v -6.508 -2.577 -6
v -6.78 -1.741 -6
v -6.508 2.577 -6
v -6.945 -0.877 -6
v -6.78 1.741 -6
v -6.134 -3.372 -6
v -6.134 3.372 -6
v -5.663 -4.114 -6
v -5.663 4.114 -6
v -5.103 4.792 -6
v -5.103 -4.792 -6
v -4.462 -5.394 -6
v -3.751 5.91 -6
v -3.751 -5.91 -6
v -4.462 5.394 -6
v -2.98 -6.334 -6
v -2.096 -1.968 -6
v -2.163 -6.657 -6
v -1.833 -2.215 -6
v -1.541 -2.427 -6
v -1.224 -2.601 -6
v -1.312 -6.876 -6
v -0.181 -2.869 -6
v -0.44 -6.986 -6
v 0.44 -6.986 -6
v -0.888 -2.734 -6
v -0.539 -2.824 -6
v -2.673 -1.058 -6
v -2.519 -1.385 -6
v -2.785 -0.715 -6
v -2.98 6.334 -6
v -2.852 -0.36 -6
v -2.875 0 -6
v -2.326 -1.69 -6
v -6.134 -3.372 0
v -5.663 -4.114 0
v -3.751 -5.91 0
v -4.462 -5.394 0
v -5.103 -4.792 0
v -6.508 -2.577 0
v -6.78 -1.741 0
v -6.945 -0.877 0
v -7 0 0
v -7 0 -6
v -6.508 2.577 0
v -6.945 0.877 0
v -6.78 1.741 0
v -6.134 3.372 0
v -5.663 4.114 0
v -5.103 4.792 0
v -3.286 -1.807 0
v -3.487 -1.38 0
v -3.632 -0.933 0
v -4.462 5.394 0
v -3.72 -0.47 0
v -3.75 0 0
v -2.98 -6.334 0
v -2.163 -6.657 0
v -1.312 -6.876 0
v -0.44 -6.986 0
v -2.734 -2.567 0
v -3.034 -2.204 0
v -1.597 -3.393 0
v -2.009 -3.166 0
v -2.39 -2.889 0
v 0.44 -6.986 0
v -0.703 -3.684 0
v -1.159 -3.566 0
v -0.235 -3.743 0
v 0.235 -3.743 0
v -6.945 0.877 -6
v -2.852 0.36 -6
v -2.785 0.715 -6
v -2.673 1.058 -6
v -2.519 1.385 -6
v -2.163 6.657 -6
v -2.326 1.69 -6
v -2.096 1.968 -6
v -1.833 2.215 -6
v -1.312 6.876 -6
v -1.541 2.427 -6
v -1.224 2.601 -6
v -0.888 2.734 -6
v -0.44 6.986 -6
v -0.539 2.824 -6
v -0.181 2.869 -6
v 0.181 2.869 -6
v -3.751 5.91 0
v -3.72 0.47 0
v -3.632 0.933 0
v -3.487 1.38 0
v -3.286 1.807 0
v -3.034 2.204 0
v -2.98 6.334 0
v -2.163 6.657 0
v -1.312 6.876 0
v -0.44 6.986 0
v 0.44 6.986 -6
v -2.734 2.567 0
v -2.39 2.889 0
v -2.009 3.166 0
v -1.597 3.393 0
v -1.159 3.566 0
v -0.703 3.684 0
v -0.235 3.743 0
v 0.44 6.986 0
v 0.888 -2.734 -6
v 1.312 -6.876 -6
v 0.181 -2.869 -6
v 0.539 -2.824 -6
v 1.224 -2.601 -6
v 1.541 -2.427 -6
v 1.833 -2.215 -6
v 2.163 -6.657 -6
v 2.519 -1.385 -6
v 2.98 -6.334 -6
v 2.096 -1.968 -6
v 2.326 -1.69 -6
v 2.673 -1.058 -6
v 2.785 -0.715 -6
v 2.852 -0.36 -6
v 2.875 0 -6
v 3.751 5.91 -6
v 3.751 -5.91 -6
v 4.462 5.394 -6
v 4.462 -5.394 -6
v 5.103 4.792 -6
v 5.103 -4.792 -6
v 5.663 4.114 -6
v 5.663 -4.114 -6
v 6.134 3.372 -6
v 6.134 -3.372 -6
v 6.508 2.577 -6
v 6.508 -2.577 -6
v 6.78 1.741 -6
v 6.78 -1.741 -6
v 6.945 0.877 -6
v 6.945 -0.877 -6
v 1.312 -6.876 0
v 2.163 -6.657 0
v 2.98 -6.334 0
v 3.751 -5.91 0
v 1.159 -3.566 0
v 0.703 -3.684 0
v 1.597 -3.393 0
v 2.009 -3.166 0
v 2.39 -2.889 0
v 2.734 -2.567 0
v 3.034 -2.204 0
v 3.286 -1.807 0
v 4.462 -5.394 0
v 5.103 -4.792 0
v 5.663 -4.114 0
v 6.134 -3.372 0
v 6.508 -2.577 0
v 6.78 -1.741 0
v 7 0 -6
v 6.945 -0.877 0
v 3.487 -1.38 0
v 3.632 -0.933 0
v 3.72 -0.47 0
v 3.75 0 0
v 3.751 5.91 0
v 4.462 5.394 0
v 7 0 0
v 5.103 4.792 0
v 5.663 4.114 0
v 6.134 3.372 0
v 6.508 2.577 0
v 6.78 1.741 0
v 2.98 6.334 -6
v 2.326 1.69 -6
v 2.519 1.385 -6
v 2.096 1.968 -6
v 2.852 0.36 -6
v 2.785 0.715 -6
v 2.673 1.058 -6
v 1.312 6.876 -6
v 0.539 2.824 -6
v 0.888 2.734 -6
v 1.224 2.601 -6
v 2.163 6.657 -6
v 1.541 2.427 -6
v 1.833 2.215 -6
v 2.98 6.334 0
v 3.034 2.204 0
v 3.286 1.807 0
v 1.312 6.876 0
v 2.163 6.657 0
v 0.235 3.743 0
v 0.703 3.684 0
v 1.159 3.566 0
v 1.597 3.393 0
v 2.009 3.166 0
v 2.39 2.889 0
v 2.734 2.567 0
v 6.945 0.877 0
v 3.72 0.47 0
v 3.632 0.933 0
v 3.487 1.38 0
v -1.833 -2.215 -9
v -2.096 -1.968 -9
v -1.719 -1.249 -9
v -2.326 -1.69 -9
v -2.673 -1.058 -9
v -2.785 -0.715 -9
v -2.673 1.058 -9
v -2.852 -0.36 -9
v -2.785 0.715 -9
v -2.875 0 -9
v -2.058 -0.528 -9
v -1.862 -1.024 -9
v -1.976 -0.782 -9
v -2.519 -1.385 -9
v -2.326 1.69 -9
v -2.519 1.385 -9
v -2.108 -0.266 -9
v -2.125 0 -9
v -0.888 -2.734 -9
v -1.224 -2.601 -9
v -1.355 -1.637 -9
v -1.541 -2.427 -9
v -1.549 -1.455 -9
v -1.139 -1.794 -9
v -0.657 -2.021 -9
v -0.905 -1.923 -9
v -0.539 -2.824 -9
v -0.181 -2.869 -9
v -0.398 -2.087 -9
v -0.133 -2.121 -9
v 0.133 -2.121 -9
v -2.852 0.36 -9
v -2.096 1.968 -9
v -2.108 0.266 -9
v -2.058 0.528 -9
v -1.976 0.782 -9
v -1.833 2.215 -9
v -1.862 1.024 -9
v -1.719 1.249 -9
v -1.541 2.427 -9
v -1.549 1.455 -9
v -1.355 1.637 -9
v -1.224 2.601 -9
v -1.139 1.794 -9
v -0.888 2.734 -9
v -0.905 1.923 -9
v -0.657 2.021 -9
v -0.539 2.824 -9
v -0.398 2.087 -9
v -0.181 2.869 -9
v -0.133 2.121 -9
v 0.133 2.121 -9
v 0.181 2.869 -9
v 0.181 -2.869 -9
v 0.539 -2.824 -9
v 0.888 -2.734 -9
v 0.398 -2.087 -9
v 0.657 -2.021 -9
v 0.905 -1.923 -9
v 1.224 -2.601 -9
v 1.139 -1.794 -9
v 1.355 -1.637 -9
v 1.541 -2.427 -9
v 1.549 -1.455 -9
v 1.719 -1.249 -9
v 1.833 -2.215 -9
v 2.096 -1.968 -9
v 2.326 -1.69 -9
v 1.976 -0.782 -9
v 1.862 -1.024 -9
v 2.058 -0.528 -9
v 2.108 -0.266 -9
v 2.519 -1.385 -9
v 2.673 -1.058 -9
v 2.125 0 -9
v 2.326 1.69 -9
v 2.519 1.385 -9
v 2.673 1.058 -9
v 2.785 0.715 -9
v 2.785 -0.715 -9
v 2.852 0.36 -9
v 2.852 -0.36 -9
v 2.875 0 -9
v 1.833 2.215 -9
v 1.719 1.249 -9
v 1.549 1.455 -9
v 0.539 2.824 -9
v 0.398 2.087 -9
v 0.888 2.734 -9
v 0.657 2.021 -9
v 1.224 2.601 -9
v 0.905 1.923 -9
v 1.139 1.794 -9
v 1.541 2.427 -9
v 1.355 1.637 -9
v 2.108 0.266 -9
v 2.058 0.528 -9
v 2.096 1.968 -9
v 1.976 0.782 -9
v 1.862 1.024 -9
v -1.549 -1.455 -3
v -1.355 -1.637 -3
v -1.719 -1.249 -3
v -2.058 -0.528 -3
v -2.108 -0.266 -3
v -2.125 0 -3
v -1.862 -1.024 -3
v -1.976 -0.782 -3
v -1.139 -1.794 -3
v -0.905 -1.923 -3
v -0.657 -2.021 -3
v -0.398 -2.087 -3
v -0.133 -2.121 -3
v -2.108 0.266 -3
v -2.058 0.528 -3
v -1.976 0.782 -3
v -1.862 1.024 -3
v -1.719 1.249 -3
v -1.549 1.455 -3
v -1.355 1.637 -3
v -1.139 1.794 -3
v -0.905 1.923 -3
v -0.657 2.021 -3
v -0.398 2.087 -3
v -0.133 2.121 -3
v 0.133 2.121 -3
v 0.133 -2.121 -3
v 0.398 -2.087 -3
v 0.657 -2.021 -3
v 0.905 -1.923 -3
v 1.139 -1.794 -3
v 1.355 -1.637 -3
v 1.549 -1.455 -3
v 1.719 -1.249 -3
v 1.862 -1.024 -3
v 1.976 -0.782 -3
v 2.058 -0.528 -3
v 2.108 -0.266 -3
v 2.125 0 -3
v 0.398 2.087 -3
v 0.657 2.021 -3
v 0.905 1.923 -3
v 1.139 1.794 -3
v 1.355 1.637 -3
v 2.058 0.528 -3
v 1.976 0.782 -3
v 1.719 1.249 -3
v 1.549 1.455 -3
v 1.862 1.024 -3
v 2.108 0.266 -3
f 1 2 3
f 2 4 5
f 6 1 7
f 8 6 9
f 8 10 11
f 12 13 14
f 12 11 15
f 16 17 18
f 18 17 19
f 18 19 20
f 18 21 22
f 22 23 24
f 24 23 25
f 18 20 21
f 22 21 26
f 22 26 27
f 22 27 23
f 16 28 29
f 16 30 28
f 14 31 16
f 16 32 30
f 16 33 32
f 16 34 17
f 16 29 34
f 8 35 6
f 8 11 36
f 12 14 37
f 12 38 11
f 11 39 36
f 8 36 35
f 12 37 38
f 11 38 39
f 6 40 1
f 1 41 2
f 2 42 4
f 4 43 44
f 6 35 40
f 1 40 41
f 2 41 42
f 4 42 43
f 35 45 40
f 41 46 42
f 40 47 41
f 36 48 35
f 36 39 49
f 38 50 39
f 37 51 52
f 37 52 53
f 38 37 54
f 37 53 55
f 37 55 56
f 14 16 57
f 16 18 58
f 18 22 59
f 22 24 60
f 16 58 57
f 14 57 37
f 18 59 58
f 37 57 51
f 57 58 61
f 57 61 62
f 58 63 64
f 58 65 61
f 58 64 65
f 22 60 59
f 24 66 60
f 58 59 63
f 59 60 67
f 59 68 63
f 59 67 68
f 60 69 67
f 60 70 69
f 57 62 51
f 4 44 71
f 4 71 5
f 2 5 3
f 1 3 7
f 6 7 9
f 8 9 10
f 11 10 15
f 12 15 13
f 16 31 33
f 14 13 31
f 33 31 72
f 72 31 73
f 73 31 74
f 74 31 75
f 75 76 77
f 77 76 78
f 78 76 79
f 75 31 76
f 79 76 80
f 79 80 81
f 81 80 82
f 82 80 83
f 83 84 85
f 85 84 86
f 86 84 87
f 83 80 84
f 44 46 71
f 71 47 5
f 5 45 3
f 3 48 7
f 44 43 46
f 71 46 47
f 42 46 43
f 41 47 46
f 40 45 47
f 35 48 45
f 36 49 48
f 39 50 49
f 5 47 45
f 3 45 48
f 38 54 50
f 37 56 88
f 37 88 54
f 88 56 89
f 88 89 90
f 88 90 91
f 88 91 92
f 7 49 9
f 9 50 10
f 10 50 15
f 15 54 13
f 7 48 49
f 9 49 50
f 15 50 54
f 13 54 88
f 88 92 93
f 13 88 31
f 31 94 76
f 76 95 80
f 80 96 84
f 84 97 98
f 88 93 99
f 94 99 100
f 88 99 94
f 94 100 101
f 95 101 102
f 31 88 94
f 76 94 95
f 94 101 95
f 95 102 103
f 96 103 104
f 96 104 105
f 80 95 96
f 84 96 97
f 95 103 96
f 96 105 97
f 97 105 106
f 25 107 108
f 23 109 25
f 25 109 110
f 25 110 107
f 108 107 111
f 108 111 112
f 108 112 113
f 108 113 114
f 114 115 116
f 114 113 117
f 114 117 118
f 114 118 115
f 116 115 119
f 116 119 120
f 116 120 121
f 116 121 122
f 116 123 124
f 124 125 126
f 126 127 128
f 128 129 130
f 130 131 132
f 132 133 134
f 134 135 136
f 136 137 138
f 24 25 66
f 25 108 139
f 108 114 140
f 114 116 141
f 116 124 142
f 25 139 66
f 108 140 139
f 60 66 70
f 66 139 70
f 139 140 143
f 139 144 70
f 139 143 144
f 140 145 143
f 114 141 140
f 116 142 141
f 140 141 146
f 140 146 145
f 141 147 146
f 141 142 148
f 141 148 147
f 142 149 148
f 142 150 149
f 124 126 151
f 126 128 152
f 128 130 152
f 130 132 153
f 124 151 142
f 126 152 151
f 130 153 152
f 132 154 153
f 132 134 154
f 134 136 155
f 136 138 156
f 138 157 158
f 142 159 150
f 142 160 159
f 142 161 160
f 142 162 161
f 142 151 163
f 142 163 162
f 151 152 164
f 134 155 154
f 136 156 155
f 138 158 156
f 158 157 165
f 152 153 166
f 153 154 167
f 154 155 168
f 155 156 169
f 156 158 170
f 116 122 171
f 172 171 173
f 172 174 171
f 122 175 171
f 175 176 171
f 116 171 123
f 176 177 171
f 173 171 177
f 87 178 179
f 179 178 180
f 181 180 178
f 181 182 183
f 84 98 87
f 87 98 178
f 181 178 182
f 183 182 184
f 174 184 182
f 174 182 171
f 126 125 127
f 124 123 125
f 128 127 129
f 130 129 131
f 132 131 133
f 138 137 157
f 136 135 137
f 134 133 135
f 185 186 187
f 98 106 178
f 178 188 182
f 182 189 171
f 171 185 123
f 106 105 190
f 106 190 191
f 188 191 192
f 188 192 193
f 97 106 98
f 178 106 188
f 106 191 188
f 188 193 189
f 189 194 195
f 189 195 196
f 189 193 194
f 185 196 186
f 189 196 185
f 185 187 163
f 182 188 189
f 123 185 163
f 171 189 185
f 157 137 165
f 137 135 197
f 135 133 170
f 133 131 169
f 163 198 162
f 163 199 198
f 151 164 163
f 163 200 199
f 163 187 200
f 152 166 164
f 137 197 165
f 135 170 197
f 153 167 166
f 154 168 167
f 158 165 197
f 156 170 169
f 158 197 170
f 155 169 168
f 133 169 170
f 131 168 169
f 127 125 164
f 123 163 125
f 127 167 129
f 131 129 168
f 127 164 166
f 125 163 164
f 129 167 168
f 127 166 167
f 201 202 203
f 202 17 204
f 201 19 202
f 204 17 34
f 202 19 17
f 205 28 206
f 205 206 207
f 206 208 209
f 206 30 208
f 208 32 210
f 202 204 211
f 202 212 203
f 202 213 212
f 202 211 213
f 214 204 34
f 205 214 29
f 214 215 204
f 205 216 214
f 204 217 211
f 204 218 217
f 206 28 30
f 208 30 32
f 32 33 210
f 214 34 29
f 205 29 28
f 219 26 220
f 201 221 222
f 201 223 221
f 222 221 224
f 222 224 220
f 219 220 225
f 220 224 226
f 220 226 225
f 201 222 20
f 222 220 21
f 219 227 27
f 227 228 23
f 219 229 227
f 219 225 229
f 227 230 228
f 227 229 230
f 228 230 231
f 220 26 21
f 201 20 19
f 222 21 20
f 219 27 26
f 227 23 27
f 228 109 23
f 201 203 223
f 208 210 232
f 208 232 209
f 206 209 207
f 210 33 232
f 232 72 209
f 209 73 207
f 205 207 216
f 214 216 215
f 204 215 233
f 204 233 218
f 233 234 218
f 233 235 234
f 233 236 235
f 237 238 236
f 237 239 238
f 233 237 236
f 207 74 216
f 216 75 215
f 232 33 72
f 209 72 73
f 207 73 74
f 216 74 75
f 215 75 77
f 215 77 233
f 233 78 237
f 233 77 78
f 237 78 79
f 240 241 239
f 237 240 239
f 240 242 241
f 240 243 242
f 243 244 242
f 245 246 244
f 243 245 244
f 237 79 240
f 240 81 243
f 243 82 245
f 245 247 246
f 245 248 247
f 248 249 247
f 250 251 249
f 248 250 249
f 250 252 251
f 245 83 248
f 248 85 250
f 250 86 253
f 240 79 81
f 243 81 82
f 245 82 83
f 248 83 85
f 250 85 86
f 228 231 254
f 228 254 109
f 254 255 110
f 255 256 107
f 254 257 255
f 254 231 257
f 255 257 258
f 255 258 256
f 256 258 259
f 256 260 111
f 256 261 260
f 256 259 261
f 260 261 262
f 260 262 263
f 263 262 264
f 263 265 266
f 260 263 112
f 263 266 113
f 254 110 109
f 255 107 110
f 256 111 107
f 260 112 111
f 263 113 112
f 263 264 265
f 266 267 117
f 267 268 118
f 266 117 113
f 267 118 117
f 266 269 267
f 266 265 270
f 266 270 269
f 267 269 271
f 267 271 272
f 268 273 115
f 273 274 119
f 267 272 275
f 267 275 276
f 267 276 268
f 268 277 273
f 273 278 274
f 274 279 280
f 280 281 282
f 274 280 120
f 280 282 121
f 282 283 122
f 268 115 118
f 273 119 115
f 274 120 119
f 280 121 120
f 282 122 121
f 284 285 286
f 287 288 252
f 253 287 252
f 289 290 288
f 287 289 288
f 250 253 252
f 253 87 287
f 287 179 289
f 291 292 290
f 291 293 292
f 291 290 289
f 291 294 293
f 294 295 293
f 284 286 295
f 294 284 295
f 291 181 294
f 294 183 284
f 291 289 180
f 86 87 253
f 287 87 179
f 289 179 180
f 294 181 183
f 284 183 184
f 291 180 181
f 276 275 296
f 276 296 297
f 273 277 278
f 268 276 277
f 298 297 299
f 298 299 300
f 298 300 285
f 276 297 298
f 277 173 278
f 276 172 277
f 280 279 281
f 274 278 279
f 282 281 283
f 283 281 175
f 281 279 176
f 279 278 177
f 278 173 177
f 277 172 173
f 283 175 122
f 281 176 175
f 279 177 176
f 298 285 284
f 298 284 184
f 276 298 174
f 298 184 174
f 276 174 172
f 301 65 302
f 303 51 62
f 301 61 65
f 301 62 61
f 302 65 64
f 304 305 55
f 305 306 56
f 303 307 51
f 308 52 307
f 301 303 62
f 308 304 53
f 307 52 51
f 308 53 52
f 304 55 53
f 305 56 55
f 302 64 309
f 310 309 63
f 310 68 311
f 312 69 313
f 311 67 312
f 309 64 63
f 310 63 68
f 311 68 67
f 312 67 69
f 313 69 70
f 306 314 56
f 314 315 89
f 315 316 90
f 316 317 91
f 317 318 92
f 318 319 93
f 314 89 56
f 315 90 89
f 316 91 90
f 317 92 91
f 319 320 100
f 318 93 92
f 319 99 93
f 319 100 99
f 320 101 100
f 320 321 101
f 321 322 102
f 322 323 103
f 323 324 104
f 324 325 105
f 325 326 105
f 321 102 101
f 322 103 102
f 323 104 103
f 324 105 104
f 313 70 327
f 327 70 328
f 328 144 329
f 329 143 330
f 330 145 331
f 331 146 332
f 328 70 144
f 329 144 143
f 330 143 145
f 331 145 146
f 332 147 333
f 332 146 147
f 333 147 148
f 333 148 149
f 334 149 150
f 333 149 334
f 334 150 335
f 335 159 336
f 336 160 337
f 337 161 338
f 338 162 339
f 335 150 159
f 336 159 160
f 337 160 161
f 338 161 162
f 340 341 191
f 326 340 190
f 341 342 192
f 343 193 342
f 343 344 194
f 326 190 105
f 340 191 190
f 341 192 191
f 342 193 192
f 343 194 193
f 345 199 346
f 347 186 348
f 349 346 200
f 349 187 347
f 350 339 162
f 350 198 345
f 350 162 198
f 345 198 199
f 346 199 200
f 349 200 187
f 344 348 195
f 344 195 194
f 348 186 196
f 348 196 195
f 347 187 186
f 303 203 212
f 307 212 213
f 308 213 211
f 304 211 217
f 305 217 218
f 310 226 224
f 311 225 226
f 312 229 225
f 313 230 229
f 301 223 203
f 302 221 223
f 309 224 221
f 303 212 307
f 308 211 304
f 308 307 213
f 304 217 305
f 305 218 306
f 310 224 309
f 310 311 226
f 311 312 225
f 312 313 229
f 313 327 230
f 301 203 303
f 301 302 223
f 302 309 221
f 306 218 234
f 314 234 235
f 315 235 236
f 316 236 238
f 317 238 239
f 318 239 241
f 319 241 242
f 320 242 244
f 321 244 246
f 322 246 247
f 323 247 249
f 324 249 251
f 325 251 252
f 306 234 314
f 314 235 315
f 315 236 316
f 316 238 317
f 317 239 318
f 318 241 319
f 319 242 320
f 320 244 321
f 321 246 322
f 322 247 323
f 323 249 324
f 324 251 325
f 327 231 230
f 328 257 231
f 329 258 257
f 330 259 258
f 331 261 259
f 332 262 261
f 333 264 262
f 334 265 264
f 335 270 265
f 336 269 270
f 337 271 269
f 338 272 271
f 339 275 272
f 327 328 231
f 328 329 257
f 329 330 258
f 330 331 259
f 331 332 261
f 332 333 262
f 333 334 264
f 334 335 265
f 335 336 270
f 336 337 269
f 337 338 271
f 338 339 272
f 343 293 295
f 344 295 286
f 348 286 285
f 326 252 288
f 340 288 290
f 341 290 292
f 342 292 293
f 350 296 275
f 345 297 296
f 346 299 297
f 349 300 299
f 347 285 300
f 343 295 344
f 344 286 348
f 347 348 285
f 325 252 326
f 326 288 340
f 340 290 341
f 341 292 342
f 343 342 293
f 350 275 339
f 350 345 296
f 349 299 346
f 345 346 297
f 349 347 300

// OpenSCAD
$fn = 50;

difference() {
	union() {
		translate(v = [0, 0, -6.0]) {
			cylinder(h = 6, r = 7.0);
		}
		#translate(v = [0, 0, -9.0]) {
			cylinder(h = 9, r = 2.875);
		}
	}
	union() {
		translate(v = [0, 0, 0]) {
			rotate(a = [0, 0, 0]) {
				difference() {
					union() {
						translate(v = [0, 0, -9.0]) {
							cylinder(h = 9, r = 2.0);
						}
						translate(v = [0, 0, -3]) {
							cylinder(h = 3, r1 = 2.125, r2 = 3.75);
						}
						translate(v = [0, 0, -9.0]) {
							cylinder(h = 9, r = 2.125);
						}
						translate(v = [0, 0, -9.0]) {
							cylinder(h = 9, r = 2.0);
						}
					}
					union();
				}
			}
		}
	}
}
